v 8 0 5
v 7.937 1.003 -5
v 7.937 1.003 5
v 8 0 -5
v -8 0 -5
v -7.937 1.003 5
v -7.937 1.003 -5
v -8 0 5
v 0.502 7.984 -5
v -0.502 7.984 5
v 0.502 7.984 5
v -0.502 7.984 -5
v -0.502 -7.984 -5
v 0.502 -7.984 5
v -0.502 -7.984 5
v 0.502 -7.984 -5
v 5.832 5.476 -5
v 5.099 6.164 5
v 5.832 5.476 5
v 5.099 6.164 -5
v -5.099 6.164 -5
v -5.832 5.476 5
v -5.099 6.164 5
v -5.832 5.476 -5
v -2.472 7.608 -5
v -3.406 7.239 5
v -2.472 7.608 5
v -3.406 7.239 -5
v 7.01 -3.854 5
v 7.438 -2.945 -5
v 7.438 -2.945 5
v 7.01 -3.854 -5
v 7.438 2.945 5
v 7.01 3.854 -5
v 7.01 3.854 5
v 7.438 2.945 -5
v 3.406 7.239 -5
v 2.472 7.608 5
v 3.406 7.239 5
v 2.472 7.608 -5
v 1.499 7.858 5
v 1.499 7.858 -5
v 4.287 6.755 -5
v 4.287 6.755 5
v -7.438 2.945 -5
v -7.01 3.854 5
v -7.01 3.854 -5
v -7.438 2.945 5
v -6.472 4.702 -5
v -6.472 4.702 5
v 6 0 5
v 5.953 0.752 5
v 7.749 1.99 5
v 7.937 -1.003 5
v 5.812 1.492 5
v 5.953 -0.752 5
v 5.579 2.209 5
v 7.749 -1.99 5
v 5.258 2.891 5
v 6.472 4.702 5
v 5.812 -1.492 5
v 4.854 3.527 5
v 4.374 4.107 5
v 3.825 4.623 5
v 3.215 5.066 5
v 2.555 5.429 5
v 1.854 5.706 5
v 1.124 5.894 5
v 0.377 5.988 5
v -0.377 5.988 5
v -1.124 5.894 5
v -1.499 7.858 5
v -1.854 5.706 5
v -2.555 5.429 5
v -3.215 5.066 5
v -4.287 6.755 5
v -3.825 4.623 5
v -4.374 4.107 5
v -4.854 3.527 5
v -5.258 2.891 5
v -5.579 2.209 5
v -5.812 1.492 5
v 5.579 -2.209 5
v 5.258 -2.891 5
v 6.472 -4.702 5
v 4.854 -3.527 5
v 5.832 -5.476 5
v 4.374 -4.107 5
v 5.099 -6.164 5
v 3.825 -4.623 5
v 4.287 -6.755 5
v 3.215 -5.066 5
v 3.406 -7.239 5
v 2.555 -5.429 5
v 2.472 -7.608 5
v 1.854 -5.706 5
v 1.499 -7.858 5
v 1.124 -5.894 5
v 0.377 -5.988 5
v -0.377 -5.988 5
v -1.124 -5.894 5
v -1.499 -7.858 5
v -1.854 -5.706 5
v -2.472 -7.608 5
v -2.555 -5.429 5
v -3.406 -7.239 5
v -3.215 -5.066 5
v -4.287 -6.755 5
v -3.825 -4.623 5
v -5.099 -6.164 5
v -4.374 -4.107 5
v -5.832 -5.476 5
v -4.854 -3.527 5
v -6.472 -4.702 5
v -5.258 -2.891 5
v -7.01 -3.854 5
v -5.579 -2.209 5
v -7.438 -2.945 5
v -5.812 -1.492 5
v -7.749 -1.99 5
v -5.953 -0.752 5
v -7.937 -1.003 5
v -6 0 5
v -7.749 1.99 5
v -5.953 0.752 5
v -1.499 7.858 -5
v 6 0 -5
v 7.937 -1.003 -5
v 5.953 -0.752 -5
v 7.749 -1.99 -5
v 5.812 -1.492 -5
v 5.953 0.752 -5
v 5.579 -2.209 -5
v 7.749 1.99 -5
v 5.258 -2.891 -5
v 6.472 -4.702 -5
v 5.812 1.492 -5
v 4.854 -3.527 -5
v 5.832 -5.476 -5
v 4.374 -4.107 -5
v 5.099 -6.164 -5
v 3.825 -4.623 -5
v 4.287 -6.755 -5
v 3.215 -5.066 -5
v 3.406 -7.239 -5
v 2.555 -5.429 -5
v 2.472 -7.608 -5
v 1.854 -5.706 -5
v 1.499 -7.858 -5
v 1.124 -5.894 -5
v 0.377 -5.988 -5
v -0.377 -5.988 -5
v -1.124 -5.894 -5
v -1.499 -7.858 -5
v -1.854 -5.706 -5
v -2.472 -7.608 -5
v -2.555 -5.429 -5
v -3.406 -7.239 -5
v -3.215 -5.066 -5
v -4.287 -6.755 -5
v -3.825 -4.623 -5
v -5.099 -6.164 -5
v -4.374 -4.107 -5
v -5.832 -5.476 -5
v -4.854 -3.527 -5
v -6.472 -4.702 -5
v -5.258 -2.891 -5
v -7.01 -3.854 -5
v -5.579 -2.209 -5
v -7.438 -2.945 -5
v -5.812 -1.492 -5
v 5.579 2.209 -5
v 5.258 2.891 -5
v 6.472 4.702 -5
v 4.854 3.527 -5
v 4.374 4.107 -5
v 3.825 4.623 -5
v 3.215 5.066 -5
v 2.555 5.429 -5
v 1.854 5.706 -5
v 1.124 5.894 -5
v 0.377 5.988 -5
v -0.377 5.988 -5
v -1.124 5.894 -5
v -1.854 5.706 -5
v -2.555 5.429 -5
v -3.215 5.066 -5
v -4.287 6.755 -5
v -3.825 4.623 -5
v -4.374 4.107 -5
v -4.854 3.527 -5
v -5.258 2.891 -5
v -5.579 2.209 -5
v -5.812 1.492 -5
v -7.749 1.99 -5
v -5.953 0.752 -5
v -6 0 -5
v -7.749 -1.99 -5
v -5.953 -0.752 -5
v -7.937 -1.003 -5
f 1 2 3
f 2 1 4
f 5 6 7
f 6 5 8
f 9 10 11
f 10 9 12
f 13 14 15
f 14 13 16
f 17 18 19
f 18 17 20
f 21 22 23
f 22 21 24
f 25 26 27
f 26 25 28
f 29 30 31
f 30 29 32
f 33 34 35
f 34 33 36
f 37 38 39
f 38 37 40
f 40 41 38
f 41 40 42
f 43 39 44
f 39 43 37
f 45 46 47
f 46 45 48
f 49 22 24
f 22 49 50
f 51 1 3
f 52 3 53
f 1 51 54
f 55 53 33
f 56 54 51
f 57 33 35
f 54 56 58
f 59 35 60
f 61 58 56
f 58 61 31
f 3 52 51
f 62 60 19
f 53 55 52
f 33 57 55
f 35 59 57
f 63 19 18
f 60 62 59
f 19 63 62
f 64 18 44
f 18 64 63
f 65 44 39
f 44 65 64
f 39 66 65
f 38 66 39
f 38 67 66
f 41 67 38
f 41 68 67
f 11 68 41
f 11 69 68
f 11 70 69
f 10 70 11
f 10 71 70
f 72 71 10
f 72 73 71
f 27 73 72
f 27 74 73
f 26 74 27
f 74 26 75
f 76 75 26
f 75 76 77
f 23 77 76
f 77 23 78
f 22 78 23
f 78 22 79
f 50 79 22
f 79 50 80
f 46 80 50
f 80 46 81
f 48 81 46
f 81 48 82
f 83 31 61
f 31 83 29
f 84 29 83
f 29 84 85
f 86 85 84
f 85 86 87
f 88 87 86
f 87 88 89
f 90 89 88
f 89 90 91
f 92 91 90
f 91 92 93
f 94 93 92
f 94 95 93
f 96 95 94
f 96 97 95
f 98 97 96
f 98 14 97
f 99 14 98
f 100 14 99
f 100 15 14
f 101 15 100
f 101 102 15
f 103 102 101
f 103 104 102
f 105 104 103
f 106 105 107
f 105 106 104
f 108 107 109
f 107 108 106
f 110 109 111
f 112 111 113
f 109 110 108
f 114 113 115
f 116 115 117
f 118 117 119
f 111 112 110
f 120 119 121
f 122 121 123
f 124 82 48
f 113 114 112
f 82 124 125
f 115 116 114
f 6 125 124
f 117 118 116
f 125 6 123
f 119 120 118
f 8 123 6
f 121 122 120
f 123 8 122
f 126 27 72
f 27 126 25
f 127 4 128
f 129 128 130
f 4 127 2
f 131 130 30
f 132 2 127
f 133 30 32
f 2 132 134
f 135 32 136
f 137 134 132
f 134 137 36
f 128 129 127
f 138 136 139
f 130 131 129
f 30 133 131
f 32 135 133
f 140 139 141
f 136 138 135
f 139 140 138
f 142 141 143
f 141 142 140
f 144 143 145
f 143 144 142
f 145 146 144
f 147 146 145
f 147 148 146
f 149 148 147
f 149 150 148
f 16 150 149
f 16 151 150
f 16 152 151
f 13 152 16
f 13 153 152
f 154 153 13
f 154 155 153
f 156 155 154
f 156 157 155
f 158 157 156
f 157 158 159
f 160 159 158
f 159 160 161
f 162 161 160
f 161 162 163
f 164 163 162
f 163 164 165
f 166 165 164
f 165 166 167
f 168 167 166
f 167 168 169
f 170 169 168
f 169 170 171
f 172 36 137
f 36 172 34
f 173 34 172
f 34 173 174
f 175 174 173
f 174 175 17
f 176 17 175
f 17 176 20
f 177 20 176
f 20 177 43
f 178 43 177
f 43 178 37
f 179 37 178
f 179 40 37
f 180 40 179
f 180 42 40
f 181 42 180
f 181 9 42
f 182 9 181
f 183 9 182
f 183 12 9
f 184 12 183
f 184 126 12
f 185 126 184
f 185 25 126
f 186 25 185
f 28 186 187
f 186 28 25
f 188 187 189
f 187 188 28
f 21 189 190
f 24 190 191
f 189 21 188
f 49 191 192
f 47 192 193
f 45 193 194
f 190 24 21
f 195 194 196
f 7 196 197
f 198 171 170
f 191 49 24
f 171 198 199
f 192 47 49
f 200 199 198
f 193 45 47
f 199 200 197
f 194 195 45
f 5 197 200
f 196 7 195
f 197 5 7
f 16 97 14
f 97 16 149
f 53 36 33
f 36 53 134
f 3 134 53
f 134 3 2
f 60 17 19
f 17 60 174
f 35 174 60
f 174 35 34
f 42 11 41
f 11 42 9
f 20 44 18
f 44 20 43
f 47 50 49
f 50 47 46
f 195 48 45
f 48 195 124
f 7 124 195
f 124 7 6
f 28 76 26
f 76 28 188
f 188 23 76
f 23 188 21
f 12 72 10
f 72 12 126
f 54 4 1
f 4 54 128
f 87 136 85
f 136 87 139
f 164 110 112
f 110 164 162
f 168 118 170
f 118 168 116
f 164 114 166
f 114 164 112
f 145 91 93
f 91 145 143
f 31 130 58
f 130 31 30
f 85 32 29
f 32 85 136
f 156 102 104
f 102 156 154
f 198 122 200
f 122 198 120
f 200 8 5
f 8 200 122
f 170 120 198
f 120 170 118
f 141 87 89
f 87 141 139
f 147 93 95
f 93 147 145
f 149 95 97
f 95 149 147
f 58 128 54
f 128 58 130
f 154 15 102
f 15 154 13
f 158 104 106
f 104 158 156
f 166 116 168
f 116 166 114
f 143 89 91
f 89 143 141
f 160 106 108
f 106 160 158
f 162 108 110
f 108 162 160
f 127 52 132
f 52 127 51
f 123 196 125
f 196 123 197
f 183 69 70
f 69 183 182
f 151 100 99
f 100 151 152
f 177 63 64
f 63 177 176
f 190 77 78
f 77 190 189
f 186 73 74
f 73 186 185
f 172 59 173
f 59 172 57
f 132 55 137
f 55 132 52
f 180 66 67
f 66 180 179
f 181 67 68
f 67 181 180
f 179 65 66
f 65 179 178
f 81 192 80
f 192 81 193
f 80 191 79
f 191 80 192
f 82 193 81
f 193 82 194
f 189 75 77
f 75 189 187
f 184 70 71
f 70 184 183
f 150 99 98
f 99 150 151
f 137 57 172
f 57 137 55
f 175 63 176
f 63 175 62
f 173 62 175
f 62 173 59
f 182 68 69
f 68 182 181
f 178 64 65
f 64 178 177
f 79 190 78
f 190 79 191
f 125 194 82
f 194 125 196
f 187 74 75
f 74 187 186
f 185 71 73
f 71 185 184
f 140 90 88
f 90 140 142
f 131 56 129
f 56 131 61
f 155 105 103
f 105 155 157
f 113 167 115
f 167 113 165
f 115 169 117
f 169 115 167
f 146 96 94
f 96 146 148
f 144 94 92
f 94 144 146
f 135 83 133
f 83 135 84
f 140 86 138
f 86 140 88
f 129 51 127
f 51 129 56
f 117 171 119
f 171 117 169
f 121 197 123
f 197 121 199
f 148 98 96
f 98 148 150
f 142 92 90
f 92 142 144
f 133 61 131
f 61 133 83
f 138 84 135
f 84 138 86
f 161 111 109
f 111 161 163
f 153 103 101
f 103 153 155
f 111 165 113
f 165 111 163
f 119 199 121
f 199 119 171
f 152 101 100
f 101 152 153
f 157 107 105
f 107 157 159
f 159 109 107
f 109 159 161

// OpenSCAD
$fn = 50;


difference() {
	union() {
		translate(v = [0, 0, -5.0000000000]) {
			cylinder(h = 10, r = 8.0000000000);
		}
	}
	union() {
		translate(v = [0, 0, -100.0000000000]) {
			cylinder(h = 200, r = 6);
		}
	}
}
